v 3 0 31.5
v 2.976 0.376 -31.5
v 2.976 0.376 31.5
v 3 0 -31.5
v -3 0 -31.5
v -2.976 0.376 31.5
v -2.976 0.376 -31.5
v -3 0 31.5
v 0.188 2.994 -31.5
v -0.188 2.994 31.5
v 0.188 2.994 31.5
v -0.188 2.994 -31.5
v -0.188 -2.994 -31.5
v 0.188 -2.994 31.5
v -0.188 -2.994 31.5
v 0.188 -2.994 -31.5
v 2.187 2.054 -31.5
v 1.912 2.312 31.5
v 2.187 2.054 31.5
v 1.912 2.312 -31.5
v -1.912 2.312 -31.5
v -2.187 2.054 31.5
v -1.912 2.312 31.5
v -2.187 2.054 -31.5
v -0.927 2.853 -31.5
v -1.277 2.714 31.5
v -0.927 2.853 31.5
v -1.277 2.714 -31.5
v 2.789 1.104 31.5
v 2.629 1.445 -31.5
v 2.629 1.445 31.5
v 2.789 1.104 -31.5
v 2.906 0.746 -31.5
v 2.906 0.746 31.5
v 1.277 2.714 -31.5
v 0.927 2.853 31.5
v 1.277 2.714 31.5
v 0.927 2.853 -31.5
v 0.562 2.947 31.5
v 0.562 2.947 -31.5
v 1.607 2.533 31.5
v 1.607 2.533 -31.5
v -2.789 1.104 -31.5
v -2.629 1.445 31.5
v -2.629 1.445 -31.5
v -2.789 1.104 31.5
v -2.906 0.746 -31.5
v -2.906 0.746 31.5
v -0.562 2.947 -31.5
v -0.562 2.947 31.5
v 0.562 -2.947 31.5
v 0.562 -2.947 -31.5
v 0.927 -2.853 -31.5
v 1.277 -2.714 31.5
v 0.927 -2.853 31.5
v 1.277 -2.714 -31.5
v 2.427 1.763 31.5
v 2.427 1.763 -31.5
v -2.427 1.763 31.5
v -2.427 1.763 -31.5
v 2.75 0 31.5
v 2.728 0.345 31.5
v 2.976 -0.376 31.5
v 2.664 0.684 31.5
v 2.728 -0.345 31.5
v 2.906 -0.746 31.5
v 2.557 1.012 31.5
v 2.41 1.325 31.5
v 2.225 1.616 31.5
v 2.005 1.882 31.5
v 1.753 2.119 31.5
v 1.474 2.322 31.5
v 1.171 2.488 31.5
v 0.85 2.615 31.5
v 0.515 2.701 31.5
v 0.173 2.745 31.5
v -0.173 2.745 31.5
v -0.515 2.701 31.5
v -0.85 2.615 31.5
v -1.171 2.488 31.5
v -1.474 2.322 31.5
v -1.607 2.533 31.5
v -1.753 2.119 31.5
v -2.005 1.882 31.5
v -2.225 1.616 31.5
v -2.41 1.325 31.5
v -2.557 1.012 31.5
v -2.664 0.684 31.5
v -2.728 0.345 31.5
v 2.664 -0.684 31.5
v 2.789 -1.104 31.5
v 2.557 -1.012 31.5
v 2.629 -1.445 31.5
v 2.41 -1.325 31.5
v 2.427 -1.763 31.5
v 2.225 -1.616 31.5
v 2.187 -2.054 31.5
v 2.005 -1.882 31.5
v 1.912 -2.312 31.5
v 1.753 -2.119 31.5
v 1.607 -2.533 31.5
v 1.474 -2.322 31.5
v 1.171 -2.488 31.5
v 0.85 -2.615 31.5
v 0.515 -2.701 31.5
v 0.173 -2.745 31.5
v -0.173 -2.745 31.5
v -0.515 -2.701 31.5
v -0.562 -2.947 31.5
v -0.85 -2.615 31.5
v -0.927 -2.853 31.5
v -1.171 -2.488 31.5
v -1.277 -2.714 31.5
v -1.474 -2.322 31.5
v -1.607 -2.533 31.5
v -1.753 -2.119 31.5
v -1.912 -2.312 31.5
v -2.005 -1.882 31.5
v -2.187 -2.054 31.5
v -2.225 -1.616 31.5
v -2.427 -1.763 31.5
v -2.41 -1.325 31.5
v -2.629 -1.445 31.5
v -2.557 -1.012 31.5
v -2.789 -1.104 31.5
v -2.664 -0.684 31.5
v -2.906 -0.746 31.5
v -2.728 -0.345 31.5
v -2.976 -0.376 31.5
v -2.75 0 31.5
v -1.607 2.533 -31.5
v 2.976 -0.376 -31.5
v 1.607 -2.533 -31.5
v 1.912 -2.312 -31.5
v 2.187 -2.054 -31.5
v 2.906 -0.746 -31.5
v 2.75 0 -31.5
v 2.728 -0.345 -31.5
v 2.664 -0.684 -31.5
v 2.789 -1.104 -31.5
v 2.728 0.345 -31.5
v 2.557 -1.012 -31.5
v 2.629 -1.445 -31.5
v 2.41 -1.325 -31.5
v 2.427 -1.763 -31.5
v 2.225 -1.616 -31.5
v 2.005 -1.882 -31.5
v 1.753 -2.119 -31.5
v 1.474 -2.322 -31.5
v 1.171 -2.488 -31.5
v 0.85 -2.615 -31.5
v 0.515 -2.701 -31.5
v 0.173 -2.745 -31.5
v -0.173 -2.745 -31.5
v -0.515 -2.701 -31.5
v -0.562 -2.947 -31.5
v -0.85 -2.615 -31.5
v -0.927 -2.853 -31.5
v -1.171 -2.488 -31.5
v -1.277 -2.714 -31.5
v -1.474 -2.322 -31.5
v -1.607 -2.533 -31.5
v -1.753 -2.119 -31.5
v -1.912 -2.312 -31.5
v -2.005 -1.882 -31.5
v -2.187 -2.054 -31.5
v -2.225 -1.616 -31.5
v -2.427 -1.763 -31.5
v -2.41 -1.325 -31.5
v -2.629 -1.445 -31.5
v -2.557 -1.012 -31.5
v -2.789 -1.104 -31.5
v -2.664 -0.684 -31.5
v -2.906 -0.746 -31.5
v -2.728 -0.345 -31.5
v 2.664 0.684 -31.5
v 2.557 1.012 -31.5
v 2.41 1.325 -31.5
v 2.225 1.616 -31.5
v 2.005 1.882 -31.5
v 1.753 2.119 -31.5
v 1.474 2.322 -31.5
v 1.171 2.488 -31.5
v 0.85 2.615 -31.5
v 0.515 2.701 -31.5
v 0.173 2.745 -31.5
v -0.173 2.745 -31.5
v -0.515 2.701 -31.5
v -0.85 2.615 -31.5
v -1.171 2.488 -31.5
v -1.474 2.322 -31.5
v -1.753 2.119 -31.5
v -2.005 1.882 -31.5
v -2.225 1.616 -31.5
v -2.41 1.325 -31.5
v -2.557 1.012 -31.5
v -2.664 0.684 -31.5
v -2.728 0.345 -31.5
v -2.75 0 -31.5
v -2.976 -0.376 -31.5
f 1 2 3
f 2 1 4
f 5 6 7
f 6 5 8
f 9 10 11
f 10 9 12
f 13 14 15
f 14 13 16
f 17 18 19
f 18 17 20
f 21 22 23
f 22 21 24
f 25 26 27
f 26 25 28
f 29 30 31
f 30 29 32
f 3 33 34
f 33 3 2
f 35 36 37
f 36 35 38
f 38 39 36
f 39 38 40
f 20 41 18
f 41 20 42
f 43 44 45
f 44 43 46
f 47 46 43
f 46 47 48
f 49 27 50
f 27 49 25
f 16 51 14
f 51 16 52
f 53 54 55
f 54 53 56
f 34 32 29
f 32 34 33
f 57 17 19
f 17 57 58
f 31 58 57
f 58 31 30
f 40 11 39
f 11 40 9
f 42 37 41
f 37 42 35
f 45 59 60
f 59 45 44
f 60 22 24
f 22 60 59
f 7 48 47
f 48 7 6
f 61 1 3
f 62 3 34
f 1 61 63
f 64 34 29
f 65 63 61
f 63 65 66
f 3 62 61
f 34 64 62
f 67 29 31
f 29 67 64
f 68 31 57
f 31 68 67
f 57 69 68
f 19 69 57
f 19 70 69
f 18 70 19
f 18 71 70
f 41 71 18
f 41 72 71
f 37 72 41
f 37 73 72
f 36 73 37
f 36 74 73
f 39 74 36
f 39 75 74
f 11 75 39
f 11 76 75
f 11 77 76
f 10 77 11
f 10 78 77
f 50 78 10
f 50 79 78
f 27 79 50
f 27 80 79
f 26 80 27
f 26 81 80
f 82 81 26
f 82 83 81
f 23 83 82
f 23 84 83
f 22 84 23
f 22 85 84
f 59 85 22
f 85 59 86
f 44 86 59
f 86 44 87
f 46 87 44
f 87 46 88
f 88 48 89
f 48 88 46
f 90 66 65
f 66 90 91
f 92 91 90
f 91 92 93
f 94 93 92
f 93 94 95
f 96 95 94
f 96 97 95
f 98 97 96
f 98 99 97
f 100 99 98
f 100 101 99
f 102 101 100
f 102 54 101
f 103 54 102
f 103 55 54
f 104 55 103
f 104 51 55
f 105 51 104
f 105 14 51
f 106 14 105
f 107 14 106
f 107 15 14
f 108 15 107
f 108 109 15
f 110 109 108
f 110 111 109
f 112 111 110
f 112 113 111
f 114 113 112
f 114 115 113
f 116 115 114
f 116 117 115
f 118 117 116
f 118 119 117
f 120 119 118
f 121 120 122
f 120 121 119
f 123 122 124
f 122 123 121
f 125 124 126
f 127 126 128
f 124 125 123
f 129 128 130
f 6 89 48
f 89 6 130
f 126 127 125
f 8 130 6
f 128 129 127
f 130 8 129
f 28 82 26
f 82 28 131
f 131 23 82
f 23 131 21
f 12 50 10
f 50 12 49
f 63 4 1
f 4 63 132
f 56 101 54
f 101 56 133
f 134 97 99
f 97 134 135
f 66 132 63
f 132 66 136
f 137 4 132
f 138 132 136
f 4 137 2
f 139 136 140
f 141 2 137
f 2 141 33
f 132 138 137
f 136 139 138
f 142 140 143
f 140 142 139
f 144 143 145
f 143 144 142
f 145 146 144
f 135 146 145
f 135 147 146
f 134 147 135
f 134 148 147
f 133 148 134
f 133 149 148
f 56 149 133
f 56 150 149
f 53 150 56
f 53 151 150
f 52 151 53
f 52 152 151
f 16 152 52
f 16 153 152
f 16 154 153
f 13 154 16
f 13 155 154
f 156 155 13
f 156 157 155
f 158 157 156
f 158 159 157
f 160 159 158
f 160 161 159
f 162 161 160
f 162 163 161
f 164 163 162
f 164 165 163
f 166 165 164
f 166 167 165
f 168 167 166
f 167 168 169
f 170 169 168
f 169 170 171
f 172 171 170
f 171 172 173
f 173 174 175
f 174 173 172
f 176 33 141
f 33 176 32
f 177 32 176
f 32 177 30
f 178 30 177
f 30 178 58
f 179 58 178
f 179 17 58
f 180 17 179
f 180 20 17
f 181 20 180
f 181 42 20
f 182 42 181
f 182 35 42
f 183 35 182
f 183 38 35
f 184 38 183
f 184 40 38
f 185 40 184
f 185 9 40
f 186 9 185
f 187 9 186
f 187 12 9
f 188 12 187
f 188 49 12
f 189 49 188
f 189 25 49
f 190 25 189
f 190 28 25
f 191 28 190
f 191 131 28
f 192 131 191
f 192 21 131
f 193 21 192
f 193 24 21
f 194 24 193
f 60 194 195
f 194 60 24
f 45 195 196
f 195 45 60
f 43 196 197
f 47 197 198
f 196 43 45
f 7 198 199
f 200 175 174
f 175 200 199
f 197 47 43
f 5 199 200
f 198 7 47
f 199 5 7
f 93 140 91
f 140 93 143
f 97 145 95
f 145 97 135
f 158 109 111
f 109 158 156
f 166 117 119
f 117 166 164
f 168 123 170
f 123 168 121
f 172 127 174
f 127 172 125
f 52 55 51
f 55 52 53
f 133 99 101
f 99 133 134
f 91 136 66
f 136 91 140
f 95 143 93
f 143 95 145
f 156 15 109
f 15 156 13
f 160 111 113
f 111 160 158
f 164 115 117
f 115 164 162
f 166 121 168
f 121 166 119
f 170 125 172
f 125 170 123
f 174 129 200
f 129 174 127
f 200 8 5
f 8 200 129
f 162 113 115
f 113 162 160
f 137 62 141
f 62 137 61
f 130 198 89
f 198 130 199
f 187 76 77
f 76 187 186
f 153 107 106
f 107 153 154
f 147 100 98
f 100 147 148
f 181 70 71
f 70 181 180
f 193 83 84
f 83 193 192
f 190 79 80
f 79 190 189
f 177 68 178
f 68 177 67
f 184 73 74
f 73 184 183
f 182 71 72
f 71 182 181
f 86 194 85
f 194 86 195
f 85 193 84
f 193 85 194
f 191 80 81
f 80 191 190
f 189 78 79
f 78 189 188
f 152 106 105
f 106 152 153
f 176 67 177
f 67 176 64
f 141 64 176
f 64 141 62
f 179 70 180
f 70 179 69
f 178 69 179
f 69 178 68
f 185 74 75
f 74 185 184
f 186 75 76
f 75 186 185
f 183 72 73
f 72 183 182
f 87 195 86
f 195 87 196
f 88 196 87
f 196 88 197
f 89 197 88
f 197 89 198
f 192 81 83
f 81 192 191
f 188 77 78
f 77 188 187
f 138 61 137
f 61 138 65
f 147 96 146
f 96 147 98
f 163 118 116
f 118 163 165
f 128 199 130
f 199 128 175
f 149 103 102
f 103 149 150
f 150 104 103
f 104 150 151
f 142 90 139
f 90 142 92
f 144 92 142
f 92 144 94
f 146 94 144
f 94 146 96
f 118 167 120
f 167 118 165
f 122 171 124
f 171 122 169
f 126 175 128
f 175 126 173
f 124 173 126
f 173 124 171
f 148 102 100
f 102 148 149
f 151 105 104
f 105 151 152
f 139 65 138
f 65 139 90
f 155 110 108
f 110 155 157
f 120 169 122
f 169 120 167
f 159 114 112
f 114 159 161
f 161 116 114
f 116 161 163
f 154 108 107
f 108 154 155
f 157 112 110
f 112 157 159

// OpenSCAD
$fn = 50;


difference() {
	union() {
		translate(v = [0, 0, -31.5000000000]) {
			cylinder(h = 63, r = 3.0000000000);
		}
	}
	union() {
		translate(v = [0, 0, -100.0000000000]) {
			cylinder(h = 200, r = 2.7500000000);
		}
	}
}
